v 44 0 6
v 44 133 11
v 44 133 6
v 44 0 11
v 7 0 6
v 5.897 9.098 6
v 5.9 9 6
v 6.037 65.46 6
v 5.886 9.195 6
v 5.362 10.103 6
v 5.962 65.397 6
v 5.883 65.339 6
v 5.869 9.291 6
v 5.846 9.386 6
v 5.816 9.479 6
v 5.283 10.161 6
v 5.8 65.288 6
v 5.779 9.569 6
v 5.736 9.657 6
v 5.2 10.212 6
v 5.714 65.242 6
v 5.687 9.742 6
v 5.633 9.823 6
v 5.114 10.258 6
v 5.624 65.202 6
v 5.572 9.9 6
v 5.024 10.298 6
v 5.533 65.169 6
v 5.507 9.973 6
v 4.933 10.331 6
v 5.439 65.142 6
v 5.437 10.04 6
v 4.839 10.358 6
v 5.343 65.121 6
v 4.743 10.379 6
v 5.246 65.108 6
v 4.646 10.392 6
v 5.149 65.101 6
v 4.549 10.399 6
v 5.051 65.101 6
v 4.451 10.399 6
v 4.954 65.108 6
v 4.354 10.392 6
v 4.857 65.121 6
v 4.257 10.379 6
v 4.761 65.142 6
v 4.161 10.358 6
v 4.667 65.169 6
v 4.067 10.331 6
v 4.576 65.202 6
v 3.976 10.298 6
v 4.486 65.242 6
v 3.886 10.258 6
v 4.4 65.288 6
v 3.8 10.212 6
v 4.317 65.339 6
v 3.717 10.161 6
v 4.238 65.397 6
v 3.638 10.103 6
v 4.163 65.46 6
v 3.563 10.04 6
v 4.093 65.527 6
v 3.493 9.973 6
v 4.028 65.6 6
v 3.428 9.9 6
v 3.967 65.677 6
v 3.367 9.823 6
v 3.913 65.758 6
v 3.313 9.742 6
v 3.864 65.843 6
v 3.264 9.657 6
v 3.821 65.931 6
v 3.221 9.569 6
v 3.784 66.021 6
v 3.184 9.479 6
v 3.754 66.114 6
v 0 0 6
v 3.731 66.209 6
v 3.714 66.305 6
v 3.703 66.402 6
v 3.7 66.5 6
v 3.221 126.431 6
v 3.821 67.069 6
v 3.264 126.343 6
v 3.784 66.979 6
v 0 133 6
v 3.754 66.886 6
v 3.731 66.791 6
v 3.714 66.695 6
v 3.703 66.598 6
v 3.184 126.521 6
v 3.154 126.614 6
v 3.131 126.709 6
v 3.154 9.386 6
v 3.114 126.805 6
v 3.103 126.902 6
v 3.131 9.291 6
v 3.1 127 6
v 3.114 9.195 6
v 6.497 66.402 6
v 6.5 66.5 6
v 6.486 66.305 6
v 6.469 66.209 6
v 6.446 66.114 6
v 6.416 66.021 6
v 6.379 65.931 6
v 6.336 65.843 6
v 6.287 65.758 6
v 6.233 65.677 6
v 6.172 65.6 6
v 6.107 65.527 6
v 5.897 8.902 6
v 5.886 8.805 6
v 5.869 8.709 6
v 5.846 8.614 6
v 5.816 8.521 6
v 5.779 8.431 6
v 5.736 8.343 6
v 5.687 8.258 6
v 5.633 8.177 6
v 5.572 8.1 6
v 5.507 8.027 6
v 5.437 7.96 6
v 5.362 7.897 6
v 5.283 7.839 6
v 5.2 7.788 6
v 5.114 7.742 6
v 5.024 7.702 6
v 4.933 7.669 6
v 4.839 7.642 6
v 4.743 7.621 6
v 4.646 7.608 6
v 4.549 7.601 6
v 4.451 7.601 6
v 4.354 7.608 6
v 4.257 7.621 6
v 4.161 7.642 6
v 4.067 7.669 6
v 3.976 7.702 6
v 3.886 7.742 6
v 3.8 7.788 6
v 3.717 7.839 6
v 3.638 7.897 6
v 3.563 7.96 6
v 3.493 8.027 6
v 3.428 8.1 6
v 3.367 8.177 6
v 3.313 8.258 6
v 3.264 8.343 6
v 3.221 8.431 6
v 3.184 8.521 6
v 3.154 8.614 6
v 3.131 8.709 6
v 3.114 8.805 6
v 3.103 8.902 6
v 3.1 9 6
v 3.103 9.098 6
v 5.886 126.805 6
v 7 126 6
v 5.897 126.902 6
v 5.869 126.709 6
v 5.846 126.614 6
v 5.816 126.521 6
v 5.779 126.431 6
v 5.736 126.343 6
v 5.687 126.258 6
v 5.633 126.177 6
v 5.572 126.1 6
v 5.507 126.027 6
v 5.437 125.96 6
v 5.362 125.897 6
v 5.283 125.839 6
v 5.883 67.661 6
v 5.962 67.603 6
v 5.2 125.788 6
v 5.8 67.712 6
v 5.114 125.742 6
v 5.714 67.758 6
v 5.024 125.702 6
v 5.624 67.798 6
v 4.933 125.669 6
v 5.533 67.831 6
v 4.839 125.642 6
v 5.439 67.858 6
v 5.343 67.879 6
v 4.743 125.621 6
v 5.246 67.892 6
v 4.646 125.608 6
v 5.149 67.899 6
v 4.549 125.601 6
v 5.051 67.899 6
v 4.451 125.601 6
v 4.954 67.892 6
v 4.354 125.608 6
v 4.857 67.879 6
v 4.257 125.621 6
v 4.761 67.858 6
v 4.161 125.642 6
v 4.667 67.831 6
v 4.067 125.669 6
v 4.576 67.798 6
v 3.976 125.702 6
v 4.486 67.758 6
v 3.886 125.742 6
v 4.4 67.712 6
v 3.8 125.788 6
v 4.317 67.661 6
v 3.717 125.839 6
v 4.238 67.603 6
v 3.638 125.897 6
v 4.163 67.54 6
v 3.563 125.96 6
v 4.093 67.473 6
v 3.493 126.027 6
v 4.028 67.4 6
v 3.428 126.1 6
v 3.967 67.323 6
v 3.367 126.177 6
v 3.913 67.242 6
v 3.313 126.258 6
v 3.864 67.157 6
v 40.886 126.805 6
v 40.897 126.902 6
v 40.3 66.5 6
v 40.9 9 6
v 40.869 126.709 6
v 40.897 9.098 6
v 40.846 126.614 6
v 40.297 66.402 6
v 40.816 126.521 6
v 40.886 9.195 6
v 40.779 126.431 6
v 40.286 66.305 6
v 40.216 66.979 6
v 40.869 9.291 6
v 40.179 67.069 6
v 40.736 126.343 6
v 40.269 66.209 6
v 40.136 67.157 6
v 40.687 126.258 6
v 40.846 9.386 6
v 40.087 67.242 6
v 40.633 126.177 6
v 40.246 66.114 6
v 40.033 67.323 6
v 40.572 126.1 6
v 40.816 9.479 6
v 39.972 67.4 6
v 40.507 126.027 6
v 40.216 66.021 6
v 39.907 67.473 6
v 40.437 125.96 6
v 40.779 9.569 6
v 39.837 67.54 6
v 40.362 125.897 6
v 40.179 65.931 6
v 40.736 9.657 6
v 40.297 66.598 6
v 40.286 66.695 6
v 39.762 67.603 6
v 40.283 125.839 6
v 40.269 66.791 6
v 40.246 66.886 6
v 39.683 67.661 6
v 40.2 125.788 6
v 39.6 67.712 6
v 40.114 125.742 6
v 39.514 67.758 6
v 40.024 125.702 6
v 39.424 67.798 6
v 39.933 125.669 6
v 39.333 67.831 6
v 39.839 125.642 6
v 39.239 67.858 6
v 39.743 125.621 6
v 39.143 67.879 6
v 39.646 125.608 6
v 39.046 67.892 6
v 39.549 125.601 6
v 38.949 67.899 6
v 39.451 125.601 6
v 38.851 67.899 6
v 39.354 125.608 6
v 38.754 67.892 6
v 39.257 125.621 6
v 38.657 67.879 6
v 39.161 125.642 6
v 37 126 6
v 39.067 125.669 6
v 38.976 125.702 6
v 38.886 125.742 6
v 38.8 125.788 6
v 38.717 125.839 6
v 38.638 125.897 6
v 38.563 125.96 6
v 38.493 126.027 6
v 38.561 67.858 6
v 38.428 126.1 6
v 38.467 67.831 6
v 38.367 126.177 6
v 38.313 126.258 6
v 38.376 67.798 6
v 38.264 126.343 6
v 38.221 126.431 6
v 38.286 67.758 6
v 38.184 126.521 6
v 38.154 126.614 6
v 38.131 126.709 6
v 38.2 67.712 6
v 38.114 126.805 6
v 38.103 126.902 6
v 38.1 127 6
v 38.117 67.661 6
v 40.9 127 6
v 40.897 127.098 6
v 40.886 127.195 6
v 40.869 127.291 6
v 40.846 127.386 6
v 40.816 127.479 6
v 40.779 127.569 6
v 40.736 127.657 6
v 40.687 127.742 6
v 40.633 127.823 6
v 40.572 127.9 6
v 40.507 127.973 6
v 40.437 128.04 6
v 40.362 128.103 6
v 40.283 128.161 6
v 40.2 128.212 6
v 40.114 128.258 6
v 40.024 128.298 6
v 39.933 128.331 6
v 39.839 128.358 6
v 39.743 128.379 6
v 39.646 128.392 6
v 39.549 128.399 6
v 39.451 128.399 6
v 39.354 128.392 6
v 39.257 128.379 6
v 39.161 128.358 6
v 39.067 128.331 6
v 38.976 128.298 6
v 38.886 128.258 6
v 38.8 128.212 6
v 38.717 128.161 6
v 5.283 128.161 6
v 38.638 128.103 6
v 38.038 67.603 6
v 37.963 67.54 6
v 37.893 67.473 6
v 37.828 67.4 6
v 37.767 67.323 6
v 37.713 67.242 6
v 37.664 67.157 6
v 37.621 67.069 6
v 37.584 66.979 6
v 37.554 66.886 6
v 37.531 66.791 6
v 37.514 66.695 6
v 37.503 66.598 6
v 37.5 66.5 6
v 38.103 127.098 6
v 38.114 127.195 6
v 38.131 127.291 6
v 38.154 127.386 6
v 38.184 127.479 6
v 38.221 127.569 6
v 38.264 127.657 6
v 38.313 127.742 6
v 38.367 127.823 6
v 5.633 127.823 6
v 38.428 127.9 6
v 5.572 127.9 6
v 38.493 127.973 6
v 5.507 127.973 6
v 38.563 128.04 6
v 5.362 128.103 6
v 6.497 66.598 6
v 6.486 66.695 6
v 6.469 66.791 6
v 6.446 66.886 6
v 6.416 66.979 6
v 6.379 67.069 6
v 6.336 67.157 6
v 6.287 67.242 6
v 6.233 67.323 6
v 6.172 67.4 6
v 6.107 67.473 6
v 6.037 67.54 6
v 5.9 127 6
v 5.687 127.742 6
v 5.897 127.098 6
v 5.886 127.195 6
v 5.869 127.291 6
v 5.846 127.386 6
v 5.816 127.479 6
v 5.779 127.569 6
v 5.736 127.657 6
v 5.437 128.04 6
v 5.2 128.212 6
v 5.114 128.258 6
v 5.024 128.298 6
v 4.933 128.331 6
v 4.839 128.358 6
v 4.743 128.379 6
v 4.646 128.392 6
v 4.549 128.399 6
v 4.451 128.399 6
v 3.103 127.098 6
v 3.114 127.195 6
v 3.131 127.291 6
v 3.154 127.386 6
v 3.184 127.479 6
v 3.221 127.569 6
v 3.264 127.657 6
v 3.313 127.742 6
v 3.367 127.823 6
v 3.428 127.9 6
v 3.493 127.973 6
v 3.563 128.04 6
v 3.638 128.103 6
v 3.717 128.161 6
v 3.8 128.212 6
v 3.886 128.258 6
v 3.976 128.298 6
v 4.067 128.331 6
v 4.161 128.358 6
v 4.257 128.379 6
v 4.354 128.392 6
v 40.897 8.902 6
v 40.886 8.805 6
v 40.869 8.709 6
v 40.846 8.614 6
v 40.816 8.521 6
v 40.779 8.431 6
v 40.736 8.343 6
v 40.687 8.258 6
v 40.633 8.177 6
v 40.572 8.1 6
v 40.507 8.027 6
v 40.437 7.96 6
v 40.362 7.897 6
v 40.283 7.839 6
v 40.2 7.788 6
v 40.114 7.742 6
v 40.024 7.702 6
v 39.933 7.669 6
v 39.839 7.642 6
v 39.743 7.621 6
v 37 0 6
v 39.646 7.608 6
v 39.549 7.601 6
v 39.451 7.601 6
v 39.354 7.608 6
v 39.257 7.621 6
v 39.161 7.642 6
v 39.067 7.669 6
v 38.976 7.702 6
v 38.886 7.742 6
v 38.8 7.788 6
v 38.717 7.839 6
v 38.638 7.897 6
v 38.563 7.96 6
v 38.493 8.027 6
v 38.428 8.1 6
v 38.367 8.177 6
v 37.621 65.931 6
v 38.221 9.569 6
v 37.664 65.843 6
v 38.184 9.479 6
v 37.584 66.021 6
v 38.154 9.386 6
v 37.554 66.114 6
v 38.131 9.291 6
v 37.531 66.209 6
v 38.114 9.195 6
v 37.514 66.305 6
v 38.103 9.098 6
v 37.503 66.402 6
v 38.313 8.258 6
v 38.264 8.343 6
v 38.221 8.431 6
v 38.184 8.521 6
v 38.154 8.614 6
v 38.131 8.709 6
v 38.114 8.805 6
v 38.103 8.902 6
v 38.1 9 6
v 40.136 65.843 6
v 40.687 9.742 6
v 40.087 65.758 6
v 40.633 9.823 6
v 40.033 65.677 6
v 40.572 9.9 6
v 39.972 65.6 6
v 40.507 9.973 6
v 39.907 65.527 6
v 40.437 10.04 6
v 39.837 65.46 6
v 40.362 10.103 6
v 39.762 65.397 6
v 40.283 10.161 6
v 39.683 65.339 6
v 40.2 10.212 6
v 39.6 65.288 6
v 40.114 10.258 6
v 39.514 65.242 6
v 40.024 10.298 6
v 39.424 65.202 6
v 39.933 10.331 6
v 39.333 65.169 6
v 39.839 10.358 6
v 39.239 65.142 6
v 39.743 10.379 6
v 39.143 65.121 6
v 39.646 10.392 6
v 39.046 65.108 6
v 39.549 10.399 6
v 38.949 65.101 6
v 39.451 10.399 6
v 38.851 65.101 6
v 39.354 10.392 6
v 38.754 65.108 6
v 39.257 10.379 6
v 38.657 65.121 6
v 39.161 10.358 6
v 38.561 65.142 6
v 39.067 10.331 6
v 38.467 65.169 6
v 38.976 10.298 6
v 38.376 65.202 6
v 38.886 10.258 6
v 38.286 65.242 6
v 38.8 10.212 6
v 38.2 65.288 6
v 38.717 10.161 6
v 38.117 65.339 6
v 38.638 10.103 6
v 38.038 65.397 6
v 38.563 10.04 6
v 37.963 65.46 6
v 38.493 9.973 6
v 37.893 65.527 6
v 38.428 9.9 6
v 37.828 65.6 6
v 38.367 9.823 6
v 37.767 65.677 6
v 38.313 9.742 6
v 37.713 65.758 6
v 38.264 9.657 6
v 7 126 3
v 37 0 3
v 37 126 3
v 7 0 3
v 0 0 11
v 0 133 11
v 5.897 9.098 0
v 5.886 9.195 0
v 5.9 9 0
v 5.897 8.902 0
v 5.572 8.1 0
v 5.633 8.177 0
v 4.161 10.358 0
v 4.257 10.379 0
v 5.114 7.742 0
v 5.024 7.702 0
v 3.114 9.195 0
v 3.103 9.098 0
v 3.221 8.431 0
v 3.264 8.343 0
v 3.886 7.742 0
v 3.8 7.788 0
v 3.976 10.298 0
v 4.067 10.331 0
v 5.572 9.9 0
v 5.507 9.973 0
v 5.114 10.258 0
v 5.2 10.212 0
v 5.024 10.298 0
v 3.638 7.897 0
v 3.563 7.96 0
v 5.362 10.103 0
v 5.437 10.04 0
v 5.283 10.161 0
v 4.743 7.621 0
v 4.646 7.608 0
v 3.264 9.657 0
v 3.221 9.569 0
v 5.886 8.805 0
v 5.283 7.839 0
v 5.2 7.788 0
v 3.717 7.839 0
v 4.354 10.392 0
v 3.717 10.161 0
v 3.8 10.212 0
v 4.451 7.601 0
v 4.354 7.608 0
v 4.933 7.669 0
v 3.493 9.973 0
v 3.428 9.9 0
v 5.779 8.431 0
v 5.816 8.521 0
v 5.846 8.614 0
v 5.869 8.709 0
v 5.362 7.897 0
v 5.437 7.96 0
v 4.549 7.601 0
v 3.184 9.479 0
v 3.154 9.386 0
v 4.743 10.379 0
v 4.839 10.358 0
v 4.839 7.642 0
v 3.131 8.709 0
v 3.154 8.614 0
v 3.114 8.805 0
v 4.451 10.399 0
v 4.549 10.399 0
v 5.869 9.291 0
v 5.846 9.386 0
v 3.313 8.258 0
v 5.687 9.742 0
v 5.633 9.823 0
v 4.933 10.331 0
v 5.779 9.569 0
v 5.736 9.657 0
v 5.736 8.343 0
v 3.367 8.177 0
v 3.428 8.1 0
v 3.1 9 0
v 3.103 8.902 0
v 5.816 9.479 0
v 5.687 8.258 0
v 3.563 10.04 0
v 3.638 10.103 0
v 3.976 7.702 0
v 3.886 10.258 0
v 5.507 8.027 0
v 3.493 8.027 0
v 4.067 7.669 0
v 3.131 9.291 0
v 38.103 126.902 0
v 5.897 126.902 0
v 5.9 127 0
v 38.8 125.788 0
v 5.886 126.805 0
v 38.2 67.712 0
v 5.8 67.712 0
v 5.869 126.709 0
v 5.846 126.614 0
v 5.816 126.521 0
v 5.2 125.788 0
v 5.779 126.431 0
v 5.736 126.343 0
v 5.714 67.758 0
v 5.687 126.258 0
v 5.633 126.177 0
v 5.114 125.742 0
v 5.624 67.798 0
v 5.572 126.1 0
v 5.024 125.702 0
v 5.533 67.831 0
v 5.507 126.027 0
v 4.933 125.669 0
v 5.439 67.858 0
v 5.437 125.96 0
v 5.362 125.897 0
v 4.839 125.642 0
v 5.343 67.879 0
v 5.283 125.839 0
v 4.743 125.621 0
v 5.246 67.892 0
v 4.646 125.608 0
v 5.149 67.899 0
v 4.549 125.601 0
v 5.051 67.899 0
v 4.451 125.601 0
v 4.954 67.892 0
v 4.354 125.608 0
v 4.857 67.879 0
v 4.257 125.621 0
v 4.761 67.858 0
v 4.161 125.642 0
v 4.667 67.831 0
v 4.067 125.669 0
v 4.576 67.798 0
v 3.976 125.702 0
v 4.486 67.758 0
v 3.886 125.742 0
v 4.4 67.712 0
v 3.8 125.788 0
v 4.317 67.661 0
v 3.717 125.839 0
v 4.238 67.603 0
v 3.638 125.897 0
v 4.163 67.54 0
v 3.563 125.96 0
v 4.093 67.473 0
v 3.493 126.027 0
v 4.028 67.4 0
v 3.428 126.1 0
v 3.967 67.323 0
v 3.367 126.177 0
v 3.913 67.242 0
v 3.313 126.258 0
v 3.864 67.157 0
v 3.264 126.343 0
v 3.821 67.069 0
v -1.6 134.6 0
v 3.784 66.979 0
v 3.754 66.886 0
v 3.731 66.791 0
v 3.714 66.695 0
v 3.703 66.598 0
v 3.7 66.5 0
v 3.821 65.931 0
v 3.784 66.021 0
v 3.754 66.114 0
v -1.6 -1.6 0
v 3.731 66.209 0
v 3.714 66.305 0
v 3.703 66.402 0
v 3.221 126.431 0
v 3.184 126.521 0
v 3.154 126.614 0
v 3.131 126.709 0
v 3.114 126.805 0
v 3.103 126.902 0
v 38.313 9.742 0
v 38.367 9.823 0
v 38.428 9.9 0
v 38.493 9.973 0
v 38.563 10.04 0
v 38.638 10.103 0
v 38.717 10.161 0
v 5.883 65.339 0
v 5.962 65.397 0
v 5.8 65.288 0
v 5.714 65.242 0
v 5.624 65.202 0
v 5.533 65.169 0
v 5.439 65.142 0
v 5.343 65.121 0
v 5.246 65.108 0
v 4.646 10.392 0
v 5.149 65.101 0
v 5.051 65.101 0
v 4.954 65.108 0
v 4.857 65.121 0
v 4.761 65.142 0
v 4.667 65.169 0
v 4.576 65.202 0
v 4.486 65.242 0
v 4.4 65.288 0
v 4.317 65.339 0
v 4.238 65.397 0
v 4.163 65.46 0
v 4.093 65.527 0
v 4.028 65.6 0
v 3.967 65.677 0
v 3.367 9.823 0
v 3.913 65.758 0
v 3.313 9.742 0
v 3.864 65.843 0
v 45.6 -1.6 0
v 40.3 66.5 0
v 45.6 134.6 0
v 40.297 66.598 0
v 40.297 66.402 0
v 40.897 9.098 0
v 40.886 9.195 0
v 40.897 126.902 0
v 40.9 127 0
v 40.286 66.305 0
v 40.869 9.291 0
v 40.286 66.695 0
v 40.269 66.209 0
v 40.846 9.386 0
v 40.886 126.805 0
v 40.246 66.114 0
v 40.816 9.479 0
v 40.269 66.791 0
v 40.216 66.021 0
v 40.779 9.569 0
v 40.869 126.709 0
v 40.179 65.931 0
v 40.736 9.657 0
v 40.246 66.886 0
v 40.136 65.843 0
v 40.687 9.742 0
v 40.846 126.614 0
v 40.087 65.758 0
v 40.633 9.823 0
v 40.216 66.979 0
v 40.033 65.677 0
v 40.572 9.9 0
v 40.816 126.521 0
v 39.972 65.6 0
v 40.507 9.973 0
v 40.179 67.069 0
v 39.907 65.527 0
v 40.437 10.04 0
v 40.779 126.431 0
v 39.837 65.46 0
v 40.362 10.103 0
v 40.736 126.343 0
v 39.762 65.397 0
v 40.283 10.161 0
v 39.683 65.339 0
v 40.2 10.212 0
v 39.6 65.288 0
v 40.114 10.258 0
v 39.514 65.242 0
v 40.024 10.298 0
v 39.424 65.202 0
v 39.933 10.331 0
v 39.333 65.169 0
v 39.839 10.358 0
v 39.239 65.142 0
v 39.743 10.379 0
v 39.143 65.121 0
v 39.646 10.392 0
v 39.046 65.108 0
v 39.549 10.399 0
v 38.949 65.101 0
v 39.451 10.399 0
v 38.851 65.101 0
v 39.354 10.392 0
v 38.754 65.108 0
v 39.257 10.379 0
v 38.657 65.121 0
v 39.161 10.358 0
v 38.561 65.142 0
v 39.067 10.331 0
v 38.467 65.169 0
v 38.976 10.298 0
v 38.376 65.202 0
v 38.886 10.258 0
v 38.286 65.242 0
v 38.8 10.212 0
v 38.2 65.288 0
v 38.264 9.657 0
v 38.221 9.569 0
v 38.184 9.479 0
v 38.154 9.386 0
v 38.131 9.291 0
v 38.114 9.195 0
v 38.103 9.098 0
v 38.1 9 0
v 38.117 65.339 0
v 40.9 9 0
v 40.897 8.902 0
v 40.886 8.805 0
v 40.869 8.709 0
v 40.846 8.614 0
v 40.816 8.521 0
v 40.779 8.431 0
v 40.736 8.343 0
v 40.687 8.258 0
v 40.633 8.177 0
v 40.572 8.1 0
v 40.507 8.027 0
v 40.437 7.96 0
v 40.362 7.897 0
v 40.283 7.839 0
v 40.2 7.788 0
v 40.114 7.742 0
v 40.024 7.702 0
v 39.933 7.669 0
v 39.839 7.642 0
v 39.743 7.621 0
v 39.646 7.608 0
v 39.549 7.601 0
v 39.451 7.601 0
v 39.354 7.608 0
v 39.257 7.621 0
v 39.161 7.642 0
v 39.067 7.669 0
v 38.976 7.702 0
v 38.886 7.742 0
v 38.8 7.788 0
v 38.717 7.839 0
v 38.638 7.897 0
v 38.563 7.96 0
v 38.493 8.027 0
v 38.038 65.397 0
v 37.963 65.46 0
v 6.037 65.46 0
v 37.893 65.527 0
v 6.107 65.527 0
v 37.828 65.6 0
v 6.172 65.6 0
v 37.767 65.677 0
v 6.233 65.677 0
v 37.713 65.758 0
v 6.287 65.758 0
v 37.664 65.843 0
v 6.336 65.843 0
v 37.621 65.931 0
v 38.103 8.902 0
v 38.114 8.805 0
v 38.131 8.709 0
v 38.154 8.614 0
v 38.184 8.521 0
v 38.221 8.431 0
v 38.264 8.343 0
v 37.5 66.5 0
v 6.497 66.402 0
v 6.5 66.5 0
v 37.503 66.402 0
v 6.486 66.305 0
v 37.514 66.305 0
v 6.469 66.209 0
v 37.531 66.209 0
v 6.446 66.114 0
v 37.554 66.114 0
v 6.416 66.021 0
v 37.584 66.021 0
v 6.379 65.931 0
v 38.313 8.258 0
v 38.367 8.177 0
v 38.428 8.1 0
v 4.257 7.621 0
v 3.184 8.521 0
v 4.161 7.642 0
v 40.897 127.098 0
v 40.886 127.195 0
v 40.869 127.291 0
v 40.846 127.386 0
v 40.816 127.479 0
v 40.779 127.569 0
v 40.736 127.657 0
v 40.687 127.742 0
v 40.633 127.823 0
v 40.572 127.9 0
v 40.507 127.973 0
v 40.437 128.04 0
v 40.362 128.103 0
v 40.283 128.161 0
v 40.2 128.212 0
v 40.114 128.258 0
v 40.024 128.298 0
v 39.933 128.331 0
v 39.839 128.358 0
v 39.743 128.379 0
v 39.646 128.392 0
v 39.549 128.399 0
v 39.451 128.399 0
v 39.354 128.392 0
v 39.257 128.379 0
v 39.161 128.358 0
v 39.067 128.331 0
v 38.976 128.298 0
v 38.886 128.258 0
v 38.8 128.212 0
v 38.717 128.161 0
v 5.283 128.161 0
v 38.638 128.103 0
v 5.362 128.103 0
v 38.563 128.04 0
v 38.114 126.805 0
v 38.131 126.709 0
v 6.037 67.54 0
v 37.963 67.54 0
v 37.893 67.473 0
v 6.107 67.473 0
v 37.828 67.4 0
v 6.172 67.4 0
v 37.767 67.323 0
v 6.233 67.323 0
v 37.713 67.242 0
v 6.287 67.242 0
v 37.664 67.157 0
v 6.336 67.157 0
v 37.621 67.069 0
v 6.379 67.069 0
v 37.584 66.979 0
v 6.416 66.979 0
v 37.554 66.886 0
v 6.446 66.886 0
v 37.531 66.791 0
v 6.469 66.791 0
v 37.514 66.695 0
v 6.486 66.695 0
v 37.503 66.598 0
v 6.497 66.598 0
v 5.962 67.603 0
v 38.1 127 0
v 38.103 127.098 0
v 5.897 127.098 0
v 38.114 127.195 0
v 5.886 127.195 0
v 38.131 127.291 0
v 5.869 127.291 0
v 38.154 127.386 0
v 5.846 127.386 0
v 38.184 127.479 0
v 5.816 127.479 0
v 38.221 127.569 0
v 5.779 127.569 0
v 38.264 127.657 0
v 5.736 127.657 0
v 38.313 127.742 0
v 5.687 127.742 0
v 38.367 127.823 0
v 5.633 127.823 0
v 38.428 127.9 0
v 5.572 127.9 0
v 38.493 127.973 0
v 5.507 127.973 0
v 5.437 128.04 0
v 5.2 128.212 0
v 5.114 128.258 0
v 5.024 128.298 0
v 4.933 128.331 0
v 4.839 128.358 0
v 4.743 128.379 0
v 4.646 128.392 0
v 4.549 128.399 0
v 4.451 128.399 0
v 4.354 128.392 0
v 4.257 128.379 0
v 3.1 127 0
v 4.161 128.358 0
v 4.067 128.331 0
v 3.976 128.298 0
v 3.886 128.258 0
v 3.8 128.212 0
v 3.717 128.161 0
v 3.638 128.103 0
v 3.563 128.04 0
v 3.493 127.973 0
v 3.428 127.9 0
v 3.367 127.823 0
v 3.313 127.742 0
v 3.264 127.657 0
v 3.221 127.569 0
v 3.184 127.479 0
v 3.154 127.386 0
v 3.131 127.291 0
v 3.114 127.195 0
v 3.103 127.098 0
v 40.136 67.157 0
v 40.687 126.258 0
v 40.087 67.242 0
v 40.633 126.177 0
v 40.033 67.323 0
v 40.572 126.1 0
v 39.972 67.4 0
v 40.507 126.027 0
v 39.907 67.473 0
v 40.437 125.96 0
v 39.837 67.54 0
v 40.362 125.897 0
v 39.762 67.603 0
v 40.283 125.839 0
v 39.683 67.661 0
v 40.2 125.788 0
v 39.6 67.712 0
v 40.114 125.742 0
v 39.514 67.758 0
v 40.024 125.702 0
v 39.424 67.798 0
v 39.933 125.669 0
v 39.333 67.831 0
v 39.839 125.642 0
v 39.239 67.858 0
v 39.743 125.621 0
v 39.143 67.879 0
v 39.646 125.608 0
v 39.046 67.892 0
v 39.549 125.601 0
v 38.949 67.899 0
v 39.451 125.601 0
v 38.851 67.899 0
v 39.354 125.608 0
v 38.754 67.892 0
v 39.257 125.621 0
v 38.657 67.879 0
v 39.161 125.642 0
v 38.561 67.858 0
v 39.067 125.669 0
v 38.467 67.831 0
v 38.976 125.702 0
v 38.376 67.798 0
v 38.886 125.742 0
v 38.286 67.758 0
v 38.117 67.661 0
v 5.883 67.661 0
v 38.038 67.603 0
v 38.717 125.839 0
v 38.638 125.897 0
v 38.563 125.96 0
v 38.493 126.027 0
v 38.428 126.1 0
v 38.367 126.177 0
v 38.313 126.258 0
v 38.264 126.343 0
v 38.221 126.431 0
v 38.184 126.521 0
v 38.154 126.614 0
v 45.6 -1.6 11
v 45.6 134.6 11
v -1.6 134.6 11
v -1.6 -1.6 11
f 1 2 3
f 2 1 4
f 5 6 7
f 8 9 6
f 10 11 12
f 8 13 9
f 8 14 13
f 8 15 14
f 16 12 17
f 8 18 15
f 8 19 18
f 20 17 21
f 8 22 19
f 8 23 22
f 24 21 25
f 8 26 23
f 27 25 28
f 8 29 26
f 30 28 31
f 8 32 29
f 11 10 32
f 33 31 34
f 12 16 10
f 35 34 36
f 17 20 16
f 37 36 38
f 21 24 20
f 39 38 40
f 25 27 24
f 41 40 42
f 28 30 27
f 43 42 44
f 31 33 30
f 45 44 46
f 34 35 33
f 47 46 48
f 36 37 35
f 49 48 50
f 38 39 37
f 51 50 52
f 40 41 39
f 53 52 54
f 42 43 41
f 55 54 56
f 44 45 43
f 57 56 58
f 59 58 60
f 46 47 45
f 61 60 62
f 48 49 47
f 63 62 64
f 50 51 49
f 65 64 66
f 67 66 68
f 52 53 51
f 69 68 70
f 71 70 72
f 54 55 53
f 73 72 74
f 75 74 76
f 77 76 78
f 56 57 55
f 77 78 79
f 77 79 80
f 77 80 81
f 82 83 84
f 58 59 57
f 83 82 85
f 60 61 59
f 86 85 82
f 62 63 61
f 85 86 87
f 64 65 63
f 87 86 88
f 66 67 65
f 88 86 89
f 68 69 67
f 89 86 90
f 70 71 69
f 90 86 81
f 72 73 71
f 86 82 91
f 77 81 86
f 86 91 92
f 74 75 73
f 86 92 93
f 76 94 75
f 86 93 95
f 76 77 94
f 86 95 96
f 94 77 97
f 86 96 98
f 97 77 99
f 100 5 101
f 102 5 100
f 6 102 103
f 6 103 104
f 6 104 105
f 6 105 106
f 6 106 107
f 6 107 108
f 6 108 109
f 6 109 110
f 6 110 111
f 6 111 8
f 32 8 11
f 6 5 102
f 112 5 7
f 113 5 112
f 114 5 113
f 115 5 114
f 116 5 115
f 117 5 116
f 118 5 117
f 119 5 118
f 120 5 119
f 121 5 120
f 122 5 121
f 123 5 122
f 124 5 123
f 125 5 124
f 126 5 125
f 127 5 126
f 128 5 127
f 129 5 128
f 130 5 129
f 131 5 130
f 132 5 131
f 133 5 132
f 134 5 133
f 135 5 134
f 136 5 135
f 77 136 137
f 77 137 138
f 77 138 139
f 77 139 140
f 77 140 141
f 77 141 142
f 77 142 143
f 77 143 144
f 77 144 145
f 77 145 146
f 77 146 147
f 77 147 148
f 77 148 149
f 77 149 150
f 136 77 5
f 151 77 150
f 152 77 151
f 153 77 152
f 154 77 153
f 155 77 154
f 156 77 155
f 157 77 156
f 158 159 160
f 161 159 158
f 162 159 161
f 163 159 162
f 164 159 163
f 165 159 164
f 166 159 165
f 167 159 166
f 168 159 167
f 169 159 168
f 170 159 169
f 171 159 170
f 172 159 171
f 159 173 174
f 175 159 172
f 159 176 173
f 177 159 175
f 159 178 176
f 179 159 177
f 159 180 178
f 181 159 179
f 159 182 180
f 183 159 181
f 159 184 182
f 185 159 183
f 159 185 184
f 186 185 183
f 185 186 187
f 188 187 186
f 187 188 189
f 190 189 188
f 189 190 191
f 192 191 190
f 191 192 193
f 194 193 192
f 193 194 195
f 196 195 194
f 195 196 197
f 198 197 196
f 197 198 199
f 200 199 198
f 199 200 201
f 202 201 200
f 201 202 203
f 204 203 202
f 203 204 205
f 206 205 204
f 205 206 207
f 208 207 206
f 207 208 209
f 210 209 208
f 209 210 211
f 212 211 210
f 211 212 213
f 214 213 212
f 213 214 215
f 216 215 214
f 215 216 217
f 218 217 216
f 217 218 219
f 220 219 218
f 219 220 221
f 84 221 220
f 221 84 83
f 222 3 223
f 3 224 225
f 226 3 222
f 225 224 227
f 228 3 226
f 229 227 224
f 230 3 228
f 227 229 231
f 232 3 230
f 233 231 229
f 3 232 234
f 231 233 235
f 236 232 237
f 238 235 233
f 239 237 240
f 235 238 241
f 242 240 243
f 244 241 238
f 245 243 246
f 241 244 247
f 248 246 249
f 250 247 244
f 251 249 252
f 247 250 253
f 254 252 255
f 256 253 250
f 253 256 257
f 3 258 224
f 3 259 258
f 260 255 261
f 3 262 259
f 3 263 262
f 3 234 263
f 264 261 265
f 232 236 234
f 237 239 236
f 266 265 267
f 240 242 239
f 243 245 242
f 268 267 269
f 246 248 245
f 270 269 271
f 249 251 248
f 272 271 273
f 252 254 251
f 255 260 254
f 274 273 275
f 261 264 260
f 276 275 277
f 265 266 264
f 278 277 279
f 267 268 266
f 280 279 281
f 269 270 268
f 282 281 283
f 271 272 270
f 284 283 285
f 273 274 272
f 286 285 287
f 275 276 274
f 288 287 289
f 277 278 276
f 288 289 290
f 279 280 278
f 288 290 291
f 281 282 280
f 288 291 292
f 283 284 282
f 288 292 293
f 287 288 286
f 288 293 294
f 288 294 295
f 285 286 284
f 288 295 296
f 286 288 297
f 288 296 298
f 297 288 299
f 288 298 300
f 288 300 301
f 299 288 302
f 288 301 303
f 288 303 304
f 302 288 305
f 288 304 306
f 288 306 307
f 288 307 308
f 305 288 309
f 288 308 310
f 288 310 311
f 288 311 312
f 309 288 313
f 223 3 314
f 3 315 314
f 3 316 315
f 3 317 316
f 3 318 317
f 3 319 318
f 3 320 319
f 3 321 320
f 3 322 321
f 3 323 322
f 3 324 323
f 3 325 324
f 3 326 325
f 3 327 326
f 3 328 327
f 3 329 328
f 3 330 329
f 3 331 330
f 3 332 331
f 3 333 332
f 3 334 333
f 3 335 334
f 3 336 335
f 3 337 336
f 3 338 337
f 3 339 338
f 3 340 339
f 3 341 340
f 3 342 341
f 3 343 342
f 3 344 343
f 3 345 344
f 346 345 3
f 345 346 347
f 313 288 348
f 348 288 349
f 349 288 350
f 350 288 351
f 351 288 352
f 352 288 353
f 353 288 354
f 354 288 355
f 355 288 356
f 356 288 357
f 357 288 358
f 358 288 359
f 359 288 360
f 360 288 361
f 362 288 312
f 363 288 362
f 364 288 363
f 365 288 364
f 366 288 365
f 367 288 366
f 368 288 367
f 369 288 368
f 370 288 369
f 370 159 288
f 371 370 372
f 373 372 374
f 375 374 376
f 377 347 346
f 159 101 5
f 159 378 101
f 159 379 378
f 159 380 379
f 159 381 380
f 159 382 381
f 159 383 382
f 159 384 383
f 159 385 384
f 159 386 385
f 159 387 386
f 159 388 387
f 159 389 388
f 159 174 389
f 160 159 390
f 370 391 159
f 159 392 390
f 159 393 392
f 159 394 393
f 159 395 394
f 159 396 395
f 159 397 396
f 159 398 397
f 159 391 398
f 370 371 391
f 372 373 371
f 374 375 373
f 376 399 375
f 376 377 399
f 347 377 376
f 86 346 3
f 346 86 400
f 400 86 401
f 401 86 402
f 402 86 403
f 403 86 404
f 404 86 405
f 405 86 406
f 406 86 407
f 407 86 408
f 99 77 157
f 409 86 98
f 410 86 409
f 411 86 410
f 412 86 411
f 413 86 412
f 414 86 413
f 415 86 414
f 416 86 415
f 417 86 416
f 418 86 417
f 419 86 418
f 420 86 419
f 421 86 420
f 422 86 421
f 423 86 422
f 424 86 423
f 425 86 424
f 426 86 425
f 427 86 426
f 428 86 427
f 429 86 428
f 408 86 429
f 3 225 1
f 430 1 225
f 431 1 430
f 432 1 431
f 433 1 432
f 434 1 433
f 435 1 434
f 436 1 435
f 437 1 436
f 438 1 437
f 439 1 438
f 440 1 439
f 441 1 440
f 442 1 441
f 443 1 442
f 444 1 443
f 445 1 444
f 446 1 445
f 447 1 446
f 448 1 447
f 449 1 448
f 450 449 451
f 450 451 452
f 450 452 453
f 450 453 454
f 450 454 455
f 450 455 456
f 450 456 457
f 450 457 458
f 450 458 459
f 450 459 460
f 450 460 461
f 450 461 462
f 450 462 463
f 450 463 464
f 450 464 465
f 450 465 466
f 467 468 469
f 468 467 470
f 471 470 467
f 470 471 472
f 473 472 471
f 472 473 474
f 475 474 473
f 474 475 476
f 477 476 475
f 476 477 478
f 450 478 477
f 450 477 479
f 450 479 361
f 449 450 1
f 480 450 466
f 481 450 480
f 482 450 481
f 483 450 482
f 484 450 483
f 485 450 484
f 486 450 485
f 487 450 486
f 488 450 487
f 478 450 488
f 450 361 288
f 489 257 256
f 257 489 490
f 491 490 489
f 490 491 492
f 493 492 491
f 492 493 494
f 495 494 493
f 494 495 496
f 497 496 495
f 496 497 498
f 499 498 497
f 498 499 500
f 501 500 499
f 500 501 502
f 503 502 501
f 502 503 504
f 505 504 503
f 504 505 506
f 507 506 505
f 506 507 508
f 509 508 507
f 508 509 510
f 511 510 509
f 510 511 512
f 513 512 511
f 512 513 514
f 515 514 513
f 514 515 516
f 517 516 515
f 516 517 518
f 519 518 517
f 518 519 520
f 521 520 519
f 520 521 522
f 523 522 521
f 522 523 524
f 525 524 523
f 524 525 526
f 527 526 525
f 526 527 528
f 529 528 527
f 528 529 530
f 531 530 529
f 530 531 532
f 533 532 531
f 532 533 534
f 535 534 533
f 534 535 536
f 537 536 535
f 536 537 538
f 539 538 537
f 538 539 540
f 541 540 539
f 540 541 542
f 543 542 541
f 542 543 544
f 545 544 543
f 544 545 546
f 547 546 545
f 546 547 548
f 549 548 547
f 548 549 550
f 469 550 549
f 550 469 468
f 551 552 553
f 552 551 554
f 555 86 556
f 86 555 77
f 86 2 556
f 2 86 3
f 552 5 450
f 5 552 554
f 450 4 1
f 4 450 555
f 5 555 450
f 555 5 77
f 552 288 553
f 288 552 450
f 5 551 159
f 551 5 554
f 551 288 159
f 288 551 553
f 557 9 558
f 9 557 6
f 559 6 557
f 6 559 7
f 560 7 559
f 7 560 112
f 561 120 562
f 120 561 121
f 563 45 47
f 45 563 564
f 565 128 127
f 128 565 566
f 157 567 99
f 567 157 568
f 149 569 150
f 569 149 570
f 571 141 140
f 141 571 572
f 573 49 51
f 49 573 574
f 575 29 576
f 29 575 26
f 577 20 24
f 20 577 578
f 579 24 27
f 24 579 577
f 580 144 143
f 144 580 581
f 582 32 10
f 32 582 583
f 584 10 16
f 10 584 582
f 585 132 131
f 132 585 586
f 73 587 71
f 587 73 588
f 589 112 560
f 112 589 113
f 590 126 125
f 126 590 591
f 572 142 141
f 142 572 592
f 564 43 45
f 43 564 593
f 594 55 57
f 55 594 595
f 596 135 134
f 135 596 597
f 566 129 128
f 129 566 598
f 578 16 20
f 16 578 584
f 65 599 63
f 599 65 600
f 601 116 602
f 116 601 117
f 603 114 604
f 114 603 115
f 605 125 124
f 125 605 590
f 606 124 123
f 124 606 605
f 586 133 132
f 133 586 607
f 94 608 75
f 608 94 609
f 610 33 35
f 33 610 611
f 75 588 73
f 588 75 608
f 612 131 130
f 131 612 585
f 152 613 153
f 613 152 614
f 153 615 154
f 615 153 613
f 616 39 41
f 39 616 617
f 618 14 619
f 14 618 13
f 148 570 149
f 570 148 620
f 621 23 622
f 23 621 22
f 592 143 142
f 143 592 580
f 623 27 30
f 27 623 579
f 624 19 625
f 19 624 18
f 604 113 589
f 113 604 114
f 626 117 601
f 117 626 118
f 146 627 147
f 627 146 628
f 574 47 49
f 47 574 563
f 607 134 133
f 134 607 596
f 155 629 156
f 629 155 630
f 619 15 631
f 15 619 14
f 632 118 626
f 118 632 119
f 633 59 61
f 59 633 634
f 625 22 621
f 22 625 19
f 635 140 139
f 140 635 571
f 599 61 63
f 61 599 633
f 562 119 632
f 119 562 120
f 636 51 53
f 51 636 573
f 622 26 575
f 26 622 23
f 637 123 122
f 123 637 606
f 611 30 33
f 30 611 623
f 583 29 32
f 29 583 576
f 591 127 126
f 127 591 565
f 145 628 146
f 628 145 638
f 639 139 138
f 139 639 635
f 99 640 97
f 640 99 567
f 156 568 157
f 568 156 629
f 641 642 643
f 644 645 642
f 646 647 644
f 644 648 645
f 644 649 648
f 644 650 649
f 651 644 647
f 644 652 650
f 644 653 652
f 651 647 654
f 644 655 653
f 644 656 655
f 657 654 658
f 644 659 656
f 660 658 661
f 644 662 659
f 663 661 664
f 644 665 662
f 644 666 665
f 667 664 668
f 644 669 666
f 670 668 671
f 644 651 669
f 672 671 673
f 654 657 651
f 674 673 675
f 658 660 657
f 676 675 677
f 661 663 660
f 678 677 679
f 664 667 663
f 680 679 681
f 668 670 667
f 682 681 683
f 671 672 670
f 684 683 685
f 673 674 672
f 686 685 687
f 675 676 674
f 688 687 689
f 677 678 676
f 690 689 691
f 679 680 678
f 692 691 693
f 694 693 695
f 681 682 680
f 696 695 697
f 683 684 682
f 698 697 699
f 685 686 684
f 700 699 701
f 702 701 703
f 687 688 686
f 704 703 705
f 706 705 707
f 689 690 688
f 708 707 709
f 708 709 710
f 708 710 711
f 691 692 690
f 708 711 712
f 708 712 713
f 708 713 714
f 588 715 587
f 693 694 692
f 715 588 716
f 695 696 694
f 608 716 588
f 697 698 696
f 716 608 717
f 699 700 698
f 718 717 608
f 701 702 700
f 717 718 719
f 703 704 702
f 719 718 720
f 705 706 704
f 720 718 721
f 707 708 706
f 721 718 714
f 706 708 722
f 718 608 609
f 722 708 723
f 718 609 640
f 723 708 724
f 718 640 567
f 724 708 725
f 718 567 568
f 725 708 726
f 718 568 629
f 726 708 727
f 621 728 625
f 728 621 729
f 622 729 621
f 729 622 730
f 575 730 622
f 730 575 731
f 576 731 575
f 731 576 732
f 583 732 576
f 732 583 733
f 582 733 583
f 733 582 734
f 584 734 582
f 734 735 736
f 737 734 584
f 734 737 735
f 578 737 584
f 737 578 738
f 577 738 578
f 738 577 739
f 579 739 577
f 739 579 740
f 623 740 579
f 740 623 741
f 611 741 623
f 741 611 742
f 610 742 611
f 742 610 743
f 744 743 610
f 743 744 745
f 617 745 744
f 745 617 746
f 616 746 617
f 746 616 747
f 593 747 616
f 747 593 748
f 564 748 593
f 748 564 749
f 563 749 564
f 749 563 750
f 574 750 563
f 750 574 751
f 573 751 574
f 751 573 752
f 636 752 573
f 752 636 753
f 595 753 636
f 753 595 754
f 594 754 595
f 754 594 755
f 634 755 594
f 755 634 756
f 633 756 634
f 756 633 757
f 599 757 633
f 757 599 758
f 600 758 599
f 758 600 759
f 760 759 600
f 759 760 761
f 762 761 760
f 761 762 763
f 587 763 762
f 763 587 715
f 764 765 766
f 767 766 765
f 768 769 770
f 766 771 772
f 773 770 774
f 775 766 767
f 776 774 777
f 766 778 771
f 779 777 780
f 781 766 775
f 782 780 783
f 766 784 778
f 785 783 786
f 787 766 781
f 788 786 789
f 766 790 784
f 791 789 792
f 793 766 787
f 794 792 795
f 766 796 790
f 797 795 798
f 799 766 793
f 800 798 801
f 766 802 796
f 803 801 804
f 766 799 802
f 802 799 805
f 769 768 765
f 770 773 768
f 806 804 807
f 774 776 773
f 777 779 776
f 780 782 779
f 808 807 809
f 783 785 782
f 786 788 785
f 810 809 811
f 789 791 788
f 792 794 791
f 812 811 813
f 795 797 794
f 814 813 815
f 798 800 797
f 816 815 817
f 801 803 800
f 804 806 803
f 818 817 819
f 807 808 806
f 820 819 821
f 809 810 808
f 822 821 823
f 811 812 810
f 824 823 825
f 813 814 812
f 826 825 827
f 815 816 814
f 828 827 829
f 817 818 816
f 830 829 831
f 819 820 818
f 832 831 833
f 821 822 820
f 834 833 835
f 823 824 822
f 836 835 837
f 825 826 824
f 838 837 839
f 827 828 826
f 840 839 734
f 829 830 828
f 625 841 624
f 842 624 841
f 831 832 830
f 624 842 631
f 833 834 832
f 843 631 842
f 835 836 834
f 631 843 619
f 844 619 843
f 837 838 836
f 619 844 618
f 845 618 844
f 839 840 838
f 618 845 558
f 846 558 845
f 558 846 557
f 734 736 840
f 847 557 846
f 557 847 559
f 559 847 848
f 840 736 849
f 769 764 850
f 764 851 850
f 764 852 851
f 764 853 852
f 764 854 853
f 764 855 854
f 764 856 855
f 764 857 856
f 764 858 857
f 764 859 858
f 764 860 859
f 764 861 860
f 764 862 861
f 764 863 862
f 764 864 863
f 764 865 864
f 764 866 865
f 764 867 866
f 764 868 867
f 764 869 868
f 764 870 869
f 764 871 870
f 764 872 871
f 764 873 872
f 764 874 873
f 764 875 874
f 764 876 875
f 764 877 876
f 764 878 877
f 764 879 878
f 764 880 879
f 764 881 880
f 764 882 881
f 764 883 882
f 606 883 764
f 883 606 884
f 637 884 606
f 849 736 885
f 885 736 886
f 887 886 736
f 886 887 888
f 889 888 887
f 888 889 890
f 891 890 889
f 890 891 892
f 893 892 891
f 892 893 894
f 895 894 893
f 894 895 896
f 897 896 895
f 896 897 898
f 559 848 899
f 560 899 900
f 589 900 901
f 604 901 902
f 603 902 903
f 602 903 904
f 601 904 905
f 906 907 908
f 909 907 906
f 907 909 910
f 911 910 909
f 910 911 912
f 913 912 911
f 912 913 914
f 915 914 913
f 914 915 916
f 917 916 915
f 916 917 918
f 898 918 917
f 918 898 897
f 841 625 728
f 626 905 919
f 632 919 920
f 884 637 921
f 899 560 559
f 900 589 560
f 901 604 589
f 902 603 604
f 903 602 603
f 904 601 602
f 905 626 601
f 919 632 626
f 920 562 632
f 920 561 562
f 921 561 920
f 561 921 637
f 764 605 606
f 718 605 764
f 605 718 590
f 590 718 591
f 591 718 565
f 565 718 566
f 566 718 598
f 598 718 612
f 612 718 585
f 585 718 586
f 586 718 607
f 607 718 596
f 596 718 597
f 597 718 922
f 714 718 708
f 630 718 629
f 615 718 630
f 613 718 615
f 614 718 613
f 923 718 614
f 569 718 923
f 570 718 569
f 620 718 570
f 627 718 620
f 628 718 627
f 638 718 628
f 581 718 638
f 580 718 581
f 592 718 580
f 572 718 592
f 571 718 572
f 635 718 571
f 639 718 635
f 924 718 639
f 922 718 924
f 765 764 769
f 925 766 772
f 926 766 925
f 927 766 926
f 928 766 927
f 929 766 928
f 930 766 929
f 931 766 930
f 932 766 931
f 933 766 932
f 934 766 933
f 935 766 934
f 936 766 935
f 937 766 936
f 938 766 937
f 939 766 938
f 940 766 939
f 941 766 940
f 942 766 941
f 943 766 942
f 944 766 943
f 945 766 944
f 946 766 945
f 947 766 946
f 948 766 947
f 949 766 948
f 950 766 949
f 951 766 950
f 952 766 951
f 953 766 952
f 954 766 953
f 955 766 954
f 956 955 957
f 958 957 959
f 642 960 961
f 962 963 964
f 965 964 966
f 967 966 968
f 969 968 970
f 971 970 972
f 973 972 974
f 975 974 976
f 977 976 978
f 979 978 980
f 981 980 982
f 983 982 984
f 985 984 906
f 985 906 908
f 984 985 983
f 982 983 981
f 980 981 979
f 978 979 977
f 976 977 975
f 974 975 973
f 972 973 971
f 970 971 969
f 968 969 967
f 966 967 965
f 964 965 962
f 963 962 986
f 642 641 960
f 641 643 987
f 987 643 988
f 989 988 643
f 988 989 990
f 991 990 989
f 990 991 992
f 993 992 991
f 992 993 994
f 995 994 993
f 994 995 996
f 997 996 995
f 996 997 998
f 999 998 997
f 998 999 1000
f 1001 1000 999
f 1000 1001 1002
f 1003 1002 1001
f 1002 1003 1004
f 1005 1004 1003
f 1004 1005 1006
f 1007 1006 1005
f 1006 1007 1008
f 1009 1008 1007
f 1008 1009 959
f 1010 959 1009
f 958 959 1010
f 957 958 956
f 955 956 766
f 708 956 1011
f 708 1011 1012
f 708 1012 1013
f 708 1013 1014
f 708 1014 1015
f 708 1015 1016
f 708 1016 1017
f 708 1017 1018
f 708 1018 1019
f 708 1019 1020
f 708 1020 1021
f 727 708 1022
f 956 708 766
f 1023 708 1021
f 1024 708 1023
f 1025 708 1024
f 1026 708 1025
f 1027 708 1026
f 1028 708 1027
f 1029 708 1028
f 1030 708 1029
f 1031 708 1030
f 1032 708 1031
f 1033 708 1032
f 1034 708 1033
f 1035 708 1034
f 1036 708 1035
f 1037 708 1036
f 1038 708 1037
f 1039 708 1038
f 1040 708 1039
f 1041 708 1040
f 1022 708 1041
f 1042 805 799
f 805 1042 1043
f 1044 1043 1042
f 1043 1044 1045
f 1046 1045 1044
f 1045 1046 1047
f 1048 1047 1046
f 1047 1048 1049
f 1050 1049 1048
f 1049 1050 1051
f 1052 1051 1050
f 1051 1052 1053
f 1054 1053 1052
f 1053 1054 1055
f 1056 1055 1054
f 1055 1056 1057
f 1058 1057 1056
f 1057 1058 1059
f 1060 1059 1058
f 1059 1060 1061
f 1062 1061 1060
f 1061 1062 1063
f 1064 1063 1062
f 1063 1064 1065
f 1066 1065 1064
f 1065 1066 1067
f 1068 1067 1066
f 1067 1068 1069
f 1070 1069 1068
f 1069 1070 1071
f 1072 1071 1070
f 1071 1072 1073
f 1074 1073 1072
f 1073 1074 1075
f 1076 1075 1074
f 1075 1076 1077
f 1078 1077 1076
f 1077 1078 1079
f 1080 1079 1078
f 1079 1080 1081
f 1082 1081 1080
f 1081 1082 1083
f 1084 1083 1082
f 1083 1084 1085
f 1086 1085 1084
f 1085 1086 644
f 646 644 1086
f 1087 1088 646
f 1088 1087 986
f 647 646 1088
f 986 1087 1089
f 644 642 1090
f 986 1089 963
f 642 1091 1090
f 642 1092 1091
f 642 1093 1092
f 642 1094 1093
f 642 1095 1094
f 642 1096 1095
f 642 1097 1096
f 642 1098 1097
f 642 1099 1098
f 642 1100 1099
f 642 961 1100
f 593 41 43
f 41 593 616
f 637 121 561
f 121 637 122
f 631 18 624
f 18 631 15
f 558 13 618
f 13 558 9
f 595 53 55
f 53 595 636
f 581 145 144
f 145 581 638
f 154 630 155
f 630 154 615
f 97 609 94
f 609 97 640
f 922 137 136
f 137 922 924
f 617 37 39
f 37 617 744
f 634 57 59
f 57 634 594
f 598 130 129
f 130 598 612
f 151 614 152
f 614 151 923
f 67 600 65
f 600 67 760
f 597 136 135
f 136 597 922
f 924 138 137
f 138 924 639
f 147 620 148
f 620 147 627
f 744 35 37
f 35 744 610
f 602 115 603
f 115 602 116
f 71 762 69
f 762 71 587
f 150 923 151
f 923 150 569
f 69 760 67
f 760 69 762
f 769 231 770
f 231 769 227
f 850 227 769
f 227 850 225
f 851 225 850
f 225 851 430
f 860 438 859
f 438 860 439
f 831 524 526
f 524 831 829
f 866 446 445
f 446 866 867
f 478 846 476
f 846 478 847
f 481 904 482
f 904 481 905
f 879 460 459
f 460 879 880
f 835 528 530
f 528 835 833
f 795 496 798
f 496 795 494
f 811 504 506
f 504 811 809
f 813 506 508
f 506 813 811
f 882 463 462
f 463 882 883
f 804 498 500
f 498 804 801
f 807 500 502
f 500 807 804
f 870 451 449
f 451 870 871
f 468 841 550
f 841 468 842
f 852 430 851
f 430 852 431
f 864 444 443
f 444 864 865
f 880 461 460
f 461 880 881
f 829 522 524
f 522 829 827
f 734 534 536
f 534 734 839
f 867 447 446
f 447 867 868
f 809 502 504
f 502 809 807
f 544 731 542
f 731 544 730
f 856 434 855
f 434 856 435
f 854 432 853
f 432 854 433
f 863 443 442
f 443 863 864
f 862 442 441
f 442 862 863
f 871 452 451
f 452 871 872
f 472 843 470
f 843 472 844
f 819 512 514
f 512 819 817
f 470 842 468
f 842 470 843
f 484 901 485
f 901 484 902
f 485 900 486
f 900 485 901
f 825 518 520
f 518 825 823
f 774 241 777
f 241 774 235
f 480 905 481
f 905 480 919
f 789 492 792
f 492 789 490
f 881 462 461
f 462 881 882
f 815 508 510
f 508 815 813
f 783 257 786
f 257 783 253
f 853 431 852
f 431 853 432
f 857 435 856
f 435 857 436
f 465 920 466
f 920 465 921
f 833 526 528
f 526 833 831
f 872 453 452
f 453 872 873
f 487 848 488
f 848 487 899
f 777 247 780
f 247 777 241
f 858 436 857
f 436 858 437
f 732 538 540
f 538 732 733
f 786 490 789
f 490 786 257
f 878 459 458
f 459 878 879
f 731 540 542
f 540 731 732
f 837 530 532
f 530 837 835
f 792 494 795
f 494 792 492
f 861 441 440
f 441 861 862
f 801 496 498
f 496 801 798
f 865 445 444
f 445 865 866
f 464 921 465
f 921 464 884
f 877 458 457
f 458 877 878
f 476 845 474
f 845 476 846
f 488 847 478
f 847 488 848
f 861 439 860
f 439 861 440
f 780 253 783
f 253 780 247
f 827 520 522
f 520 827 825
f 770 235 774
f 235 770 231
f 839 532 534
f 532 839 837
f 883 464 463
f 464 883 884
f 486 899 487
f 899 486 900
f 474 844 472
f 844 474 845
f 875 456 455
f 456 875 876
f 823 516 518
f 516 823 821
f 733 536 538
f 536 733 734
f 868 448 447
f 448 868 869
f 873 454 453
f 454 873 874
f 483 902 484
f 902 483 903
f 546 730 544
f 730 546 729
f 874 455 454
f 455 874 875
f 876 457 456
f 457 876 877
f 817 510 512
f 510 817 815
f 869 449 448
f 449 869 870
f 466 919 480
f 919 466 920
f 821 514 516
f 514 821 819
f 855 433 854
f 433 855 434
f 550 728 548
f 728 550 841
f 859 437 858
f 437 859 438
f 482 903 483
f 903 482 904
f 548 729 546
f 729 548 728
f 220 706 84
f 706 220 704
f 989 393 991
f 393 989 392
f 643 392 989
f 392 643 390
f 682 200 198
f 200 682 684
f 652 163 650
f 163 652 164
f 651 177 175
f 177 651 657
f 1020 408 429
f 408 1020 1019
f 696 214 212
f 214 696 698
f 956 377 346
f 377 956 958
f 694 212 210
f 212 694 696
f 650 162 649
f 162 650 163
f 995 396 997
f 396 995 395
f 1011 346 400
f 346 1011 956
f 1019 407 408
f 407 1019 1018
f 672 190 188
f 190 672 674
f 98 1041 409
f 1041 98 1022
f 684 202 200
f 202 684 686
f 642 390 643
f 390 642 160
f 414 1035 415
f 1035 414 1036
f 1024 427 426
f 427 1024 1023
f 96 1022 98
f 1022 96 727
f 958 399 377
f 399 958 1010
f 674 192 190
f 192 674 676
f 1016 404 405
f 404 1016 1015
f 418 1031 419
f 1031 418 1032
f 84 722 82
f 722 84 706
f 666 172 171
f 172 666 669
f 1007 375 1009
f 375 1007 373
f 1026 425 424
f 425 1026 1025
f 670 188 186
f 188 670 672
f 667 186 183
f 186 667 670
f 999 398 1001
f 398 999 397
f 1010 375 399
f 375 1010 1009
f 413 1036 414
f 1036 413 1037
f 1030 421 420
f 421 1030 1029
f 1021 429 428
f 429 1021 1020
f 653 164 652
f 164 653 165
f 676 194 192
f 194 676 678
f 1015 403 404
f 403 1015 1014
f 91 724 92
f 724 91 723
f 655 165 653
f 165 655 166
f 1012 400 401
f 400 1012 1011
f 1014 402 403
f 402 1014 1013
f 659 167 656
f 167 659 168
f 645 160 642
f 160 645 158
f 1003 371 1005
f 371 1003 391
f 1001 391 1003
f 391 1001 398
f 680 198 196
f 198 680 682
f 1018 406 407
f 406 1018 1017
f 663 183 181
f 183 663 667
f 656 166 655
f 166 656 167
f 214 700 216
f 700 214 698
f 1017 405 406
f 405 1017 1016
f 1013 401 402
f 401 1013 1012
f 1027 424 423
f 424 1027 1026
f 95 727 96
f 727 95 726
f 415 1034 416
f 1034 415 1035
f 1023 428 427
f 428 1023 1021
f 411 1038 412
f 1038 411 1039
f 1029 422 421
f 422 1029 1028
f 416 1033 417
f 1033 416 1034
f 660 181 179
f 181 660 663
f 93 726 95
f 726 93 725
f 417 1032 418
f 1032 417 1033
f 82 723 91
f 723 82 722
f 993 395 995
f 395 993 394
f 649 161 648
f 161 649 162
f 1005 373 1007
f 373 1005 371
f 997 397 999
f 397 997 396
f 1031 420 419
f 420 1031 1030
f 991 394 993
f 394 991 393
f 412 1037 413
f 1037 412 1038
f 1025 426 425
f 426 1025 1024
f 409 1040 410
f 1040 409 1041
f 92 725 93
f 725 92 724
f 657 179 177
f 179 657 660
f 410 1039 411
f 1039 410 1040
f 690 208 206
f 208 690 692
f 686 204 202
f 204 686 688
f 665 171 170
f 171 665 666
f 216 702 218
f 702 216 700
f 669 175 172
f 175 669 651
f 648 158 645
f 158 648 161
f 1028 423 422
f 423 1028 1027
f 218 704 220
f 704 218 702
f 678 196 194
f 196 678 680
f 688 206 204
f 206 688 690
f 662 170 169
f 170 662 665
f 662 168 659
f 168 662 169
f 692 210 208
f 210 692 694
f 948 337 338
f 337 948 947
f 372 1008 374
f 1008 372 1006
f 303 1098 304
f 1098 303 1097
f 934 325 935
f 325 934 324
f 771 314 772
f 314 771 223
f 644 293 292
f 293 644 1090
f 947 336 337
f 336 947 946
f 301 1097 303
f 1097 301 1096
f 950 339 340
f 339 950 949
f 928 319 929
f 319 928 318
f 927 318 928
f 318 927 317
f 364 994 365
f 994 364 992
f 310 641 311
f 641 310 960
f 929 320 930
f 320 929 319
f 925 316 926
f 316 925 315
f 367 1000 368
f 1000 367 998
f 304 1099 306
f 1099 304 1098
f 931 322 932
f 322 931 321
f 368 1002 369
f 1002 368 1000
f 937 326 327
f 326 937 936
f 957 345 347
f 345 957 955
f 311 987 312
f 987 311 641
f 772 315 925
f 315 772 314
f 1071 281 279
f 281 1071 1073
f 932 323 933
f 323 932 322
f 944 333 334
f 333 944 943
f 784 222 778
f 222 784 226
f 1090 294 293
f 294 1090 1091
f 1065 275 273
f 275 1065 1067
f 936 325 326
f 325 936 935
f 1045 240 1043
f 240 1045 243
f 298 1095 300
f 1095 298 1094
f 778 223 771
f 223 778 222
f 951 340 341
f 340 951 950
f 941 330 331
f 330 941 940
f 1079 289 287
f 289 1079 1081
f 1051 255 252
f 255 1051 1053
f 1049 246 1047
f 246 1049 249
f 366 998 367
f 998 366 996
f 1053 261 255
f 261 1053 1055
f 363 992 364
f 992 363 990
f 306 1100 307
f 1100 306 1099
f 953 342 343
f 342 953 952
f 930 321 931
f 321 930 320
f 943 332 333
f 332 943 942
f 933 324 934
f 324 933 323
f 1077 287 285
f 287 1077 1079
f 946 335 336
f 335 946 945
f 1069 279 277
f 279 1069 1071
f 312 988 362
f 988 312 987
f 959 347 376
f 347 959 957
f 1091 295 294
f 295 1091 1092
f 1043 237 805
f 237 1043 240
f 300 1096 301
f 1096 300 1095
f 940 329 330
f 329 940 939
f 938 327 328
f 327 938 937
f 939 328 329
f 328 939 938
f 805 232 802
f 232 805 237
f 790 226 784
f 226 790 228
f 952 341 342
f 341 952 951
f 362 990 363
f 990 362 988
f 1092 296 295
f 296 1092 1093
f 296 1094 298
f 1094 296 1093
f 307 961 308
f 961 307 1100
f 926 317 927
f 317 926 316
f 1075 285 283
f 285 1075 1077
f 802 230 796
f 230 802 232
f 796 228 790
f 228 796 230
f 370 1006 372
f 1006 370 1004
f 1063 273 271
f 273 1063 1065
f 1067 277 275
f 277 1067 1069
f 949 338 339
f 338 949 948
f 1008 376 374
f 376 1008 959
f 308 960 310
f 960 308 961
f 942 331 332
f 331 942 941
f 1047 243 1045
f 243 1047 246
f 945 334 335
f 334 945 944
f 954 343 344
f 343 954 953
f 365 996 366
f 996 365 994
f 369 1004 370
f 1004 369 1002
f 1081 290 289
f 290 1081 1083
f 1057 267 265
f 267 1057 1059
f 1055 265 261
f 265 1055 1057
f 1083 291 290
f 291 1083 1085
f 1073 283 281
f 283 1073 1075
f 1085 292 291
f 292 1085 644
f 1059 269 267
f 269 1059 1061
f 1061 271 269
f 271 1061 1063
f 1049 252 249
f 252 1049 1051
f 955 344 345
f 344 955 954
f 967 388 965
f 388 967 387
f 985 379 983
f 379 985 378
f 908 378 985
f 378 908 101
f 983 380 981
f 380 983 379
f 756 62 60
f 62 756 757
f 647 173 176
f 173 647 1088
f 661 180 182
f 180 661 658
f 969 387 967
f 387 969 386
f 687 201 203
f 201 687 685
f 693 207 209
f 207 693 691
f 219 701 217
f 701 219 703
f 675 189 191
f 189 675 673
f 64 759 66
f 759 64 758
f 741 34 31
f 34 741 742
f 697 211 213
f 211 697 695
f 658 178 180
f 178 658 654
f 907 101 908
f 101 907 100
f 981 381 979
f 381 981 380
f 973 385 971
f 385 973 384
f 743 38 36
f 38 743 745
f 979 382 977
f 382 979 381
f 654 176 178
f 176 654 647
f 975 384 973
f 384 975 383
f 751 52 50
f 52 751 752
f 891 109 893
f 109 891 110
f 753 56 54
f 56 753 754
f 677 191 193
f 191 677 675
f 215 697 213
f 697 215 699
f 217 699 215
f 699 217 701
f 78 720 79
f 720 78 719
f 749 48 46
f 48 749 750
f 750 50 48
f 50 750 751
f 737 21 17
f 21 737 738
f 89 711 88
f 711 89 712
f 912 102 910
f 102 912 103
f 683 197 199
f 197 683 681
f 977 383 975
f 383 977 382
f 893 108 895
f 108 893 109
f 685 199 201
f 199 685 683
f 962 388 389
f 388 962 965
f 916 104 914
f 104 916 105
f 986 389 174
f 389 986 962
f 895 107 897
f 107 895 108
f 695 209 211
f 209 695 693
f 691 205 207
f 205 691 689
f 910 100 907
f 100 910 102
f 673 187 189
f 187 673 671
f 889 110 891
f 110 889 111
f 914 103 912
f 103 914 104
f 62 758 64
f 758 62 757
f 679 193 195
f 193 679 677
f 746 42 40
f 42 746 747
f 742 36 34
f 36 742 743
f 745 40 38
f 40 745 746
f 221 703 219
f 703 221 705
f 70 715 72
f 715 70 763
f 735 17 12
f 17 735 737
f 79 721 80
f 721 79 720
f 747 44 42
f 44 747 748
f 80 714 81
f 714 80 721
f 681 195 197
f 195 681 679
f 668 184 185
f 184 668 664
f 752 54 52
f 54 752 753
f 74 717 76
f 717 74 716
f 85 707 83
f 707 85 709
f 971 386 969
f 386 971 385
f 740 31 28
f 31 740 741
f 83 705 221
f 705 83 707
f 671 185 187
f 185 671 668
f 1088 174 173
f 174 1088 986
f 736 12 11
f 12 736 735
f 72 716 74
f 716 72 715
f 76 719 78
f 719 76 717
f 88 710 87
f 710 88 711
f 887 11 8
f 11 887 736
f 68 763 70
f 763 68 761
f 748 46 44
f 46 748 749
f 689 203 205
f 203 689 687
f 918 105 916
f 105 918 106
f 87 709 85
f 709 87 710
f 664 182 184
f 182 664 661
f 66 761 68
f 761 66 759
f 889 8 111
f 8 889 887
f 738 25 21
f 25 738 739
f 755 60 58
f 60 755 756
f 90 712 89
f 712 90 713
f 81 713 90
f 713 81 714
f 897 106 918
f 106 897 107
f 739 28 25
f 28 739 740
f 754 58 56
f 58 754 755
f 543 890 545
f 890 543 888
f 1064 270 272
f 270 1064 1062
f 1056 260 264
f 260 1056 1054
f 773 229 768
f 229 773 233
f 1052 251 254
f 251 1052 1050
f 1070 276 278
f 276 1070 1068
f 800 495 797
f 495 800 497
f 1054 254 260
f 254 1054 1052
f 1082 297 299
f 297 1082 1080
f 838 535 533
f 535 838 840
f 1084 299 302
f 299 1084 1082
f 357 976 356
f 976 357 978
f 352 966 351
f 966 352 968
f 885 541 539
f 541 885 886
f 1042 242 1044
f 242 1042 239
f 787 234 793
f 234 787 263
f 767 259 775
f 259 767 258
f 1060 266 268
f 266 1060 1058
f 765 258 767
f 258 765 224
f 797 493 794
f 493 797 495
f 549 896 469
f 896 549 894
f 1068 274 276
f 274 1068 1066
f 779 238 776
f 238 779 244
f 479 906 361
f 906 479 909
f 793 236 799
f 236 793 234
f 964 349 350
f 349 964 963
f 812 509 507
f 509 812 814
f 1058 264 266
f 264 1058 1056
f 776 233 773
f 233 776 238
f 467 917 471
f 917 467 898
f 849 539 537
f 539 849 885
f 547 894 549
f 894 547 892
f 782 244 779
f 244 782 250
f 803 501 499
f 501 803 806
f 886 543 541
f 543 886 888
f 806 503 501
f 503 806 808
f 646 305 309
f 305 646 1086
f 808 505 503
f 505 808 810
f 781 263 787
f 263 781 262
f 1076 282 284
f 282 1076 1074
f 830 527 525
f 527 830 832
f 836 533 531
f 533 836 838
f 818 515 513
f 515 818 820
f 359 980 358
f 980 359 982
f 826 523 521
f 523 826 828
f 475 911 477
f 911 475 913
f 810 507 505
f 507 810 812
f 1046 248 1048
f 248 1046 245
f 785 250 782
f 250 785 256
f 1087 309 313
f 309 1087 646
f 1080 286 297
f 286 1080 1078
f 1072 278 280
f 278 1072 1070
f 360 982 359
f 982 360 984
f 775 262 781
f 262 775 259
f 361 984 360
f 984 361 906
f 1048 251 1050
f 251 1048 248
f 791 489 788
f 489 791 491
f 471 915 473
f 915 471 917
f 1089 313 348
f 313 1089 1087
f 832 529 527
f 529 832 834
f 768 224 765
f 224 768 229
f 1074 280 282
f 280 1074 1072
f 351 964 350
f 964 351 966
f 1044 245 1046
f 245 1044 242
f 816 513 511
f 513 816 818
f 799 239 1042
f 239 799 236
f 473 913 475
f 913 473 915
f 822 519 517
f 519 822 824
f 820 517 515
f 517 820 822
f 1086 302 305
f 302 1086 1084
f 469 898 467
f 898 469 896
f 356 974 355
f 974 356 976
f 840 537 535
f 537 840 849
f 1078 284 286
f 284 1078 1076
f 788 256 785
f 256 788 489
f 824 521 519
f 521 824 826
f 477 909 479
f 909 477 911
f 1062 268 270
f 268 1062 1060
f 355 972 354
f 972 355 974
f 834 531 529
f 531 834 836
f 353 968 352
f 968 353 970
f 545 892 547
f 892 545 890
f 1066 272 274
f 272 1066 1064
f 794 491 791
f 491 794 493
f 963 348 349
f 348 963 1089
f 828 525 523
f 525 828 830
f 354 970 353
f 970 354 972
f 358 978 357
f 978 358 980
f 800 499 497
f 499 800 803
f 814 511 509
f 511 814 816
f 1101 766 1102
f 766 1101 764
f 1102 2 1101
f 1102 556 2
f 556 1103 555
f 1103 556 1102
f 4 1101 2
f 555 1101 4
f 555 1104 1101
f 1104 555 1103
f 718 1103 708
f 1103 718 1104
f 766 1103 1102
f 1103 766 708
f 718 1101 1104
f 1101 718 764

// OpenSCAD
$fn=90;
pcb_x = 44;
pcb_y = 133;
offset_y = 1;
hole_x = 35;
hole_y = 118;
hole_offset = 1.5;
clip_y = 22.5;
clip_x = 10.2;
clip_h = 4;
hole_r = 2.8/2;
t_bottom = 3;
t_side = 1.6;
module holes()
{
    cylinder(r=hole_r,h=2*t_bottom);
    translate([hole_x,0,0]) cylinder(r=hole_r,h=2*t_bottom);
    translate([0,hole_y,0]) cylinder(r=hole_r,h=2*t_bottom);
    translate([hole_x,hole_y,0]) cylinder(r=hole_r,h=2*t_bottom);
}

module clipmount_holes(add=0)
{
    translate([clip_x/2,clip_y/2,0]) cylinder(r=hole_r+add,h=clip_h+2*t_bottom);
    translate([pcb_x-clip_x/2,clip_y/2,0]) cylinder(r=hole_r+add,h=clip_h+2*t_bottom);
}

module clipmount()
{
    difference() {
        cube([pcb_x,clip_y,clip_h]);
        clipmount_holes(0.2);
    }
}

module housing()
{
    difference() {
        translate([-t_side,-t_side,0]) cube([pcb_x+2*t_side,pcb_y+2*t_side,11]);
        cube([pcb_x,pcb_y,11]);
    }
    cube([pcb_x,pcb_y,t_bottom]);
    translate([0,0,t_bottom]) difference() {
        cube([pcb_x,pcb_y,t_bottom]);
        translate([(pcb_x-30)/2,0,0]) cube([30,pcb_y-7,t_bottom]);
    }
}

difference()
{
    housing();
    translate([(pcb_x-hole_x)/2,(pcb_y-hole_y)/2+hole_offset,0]) holes();
    translate([0,(pcb_y-clip_y)/2,0]) clipmount_holes();
}
